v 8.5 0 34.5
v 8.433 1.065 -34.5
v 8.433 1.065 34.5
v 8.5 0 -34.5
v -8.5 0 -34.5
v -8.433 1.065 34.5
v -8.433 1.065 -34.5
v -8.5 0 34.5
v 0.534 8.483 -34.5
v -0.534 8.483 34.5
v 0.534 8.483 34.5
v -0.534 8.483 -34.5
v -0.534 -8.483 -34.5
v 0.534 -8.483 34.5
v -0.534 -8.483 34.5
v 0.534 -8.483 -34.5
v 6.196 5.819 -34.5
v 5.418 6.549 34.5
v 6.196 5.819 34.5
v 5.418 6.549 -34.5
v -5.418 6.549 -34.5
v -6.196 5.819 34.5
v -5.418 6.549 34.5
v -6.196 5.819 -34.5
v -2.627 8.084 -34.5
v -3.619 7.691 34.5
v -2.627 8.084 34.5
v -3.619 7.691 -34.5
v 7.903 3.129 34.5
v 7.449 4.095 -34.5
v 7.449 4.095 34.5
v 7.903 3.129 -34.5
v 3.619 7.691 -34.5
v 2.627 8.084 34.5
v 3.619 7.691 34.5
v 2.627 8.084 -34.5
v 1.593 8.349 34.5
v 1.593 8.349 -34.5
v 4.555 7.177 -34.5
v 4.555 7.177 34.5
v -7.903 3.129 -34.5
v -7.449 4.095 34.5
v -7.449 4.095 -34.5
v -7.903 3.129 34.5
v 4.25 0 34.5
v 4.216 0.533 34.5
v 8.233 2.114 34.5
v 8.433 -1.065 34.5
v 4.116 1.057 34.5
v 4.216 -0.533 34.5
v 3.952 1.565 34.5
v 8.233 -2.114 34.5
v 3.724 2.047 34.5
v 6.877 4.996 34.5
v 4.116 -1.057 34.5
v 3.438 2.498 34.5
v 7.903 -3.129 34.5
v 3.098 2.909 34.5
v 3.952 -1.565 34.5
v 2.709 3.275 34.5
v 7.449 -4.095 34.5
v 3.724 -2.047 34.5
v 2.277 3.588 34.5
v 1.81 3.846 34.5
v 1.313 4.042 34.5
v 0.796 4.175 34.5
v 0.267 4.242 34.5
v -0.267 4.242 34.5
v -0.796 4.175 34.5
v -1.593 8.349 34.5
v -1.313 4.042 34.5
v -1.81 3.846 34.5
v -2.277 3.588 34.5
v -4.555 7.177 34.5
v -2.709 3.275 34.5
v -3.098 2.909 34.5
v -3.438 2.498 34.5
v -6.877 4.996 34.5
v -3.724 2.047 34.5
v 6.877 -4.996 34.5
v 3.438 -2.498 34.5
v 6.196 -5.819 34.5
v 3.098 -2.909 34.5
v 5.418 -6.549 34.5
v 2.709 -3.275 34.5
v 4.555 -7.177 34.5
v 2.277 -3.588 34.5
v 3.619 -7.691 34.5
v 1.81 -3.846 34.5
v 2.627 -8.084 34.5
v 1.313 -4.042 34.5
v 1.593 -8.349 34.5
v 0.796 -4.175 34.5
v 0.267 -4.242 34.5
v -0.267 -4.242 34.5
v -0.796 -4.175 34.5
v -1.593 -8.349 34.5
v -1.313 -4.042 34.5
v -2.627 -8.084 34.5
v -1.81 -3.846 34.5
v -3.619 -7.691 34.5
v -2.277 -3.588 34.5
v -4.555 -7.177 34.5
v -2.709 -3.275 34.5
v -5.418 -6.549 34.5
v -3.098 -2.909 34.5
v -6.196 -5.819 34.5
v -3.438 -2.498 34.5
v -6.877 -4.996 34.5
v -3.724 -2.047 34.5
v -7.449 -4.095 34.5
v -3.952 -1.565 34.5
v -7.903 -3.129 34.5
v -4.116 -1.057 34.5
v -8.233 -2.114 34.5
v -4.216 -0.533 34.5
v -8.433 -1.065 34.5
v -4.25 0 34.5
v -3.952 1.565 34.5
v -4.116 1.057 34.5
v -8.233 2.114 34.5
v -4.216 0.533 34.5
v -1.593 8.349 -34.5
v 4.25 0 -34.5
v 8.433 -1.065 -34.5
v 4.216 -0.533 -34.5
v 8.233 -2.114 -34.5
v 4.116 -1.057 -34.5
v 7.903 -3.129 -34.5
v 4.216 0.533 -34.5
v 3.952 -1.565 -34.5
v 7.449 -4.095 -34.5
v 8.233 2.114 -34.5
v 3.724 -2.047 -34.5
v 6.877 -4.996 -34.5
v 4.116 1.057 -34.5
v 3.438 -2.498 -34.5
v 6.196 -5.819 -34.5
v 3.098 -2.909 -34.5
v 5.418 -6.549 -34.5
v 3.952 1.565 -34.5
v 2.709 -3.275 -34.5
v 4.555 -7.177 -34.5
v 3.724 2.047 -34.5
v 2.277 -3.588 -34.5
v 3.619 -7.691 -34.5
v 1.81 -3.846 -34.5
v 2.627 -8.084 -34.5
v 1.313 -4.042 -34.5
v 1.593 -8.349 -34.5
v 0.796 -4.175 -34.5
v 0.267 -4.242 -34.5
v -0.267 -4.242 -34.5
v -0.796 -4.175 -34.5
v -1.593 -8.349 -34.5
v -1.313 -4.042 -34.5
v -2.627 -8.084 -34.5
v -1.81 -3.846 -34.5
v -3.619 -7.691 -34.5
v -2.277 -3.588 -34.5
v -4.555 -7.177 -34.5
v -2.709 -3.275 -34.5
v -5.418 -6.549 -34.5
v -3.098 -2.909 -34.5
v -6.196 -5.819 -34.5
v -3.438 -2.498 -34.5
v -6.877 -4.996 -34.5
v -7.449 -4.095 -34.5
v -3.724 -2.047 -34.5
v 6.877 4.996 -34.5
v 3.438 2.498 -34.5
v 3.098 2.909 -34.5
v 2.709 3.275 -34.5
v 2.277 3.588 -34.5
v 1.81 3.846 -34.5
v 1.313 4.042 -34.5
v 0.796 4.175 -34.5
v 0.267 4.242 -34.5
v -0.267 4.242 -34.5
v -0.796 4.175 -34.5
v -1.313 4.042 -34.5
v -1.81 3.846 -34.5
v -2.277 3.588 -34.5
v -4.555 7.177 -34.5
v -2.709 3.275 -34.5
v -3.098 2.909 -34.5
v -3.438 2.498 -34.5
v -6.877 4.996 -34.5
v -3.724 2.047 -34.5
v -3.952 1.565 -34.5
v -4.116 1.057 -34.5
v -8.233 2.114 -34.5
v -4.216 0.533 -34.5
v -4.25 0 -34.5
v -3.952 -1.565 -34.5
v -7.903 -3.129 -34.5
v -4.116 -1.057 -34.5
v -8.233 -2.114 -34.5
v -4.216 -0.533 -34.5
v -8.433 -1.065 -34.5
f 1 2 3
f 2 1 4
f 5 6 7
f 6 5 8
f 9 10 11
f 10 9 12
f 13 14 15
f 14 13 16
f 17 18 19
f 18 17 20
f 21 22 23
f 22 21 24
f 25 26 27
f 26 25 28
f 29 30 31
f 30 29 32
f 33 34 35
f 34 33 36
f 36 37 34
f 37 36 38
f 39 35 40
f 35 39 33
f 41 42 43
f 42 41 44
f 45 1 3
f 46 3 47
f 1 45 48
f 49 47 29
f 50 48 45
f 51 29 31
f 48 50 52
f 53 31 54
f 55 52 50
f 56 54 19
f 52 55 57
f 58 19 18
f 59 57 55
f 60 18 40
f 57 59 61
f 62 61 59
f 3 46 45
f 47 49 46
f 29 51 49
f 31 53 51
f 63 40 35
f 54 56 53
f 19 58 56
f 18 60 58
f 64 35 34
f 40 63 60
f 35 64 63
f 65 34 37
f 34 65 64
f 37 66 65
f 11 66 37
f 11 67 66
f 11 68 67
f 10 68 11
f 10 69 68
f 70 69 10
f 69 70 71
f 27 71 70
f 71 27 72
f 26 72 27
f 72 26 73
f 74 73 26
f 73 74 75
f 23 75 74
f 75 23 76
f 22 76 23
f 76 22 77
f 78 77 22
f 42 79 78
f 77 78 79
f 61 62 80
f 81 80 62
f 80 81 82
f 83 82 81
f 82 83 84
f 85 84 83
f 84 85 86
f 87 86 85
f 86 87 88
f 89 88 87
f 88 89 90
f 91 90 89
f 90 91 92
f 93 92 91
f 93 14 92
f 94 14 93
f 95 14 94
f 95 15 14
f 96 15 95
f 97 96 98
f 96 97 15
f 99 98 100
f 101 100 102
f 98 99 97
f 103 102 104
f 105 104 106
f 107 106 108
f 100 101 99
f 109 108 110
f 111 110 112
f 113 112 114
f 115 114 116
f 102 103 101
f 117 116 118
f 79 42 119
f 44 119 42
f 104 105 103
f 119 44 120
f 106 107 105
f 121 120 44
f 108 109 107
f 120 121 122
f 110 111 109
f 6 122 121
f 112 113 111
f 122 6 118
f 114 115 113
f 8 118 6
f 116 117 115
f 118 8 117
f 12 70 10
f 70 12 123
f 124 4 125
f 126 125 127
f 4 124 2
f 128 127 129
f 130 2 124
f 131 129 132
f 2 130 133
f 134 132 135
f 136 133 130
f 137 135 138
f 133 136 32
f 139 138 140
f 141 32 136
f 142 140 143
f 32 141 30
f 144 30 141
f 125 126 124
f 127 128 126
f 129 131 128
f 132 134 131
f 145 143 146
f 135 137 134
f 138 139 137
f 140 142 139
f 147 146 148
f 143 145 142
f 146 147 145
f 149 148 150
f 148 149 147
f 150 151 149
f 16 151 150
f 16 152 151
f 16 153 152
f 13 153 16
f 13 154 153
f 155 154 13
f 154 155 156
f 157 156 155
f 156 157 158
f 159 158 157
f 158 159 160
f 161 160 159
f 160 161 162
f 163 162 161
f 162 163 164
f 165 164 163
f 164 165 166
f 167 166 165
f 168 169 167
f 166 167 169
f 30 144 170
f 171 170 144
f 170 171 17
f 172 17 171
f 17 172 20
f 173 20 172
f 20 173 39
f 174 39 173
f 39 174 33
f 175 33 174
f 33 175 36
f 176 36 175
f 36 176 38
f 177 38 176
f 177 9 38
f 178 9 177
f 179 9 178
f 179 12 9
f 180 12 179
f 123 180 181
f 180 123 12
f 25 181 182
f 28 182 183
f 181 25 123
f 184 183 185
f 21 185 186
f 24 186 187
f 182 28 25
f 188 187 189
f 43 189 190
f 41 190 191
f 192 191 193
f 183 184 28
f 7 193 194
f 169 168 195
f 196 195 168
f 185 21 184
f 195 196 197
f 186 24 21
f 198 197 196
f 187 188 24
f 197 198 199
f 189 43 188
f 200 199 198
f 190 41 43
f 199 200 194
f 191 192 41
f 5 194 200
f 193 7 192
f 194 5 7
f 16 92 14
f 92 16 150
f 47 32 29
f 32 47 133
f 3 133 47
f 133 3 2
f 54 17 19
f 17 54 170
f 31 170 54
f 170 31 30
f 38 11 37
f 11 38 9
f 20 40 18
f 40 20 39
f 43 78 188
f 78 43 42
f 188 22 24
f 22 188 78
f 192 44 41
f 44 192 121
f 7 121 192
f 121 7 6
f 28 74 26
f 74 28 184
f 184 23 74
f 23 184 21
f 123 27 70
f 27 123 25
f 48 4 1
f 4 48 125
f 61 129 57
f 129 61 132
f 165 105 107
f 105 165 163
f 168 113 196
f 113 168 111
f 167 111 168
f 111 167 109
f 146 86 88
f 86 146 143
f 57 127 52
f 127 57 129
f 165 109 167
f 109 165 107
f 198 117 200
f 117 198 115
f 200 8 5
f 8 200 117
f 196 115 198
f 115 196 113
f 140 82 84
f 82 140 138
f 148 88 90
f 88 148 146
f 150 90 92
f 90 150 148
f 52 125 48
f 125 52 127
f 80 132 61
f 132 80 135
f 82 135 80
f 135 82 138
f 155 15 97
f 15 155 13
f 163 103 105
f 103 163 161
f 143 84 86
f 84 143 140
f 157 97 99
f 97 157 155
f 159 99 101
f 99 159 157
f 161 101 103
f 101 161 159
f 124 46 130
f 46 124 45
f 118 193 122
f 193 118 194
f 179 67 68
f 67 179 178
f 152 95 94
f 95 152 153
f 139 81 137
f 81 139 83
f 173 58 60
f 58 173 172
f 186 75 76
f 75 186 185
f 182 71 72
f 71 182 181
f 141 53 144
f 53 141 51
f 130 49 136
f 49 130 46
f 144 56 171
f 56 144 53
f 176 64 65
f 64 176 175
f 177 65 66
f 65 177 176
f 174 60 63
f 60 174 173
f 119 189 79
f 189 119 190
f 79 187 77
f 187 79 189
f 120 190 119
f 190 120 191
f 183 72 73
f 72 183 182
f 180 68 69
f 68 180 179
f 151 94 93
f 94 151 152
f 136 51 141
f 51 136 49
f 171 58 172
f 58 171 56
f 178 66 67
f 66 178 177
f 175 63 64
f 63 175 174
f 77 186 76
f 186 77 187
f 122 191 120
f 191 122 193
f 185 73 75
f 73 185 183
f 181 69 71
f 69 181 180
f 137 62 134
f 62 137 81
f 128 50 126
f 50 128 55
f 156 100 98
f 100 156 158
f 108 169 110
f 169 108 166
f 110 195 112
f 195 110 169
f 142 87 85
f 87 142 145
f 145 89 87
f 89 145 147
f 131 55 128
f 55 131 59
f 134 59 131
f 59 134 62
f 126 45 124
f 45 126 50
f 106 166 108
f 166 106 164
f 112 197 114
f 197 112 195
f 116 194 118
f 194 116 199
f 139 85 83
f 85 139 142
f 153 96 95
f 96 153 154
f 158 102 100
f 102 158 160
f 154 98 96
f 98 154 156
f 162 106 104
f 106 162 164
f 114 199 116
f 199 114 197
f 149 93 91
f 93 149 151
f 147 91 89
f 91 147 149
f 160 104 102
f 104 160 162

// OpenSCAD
$fn = 50;


difference() {
	union() {
		translate(v = [0, 0, -34.5000000000]) {
			cylinder(h = 69, r = 8.5000000000);
		}
	}
	union() {
		translate(v = [0, 0, -100.0000000000]) {
			cylinder(h = 200, r = 4.2500000000);
		}
	}
}
